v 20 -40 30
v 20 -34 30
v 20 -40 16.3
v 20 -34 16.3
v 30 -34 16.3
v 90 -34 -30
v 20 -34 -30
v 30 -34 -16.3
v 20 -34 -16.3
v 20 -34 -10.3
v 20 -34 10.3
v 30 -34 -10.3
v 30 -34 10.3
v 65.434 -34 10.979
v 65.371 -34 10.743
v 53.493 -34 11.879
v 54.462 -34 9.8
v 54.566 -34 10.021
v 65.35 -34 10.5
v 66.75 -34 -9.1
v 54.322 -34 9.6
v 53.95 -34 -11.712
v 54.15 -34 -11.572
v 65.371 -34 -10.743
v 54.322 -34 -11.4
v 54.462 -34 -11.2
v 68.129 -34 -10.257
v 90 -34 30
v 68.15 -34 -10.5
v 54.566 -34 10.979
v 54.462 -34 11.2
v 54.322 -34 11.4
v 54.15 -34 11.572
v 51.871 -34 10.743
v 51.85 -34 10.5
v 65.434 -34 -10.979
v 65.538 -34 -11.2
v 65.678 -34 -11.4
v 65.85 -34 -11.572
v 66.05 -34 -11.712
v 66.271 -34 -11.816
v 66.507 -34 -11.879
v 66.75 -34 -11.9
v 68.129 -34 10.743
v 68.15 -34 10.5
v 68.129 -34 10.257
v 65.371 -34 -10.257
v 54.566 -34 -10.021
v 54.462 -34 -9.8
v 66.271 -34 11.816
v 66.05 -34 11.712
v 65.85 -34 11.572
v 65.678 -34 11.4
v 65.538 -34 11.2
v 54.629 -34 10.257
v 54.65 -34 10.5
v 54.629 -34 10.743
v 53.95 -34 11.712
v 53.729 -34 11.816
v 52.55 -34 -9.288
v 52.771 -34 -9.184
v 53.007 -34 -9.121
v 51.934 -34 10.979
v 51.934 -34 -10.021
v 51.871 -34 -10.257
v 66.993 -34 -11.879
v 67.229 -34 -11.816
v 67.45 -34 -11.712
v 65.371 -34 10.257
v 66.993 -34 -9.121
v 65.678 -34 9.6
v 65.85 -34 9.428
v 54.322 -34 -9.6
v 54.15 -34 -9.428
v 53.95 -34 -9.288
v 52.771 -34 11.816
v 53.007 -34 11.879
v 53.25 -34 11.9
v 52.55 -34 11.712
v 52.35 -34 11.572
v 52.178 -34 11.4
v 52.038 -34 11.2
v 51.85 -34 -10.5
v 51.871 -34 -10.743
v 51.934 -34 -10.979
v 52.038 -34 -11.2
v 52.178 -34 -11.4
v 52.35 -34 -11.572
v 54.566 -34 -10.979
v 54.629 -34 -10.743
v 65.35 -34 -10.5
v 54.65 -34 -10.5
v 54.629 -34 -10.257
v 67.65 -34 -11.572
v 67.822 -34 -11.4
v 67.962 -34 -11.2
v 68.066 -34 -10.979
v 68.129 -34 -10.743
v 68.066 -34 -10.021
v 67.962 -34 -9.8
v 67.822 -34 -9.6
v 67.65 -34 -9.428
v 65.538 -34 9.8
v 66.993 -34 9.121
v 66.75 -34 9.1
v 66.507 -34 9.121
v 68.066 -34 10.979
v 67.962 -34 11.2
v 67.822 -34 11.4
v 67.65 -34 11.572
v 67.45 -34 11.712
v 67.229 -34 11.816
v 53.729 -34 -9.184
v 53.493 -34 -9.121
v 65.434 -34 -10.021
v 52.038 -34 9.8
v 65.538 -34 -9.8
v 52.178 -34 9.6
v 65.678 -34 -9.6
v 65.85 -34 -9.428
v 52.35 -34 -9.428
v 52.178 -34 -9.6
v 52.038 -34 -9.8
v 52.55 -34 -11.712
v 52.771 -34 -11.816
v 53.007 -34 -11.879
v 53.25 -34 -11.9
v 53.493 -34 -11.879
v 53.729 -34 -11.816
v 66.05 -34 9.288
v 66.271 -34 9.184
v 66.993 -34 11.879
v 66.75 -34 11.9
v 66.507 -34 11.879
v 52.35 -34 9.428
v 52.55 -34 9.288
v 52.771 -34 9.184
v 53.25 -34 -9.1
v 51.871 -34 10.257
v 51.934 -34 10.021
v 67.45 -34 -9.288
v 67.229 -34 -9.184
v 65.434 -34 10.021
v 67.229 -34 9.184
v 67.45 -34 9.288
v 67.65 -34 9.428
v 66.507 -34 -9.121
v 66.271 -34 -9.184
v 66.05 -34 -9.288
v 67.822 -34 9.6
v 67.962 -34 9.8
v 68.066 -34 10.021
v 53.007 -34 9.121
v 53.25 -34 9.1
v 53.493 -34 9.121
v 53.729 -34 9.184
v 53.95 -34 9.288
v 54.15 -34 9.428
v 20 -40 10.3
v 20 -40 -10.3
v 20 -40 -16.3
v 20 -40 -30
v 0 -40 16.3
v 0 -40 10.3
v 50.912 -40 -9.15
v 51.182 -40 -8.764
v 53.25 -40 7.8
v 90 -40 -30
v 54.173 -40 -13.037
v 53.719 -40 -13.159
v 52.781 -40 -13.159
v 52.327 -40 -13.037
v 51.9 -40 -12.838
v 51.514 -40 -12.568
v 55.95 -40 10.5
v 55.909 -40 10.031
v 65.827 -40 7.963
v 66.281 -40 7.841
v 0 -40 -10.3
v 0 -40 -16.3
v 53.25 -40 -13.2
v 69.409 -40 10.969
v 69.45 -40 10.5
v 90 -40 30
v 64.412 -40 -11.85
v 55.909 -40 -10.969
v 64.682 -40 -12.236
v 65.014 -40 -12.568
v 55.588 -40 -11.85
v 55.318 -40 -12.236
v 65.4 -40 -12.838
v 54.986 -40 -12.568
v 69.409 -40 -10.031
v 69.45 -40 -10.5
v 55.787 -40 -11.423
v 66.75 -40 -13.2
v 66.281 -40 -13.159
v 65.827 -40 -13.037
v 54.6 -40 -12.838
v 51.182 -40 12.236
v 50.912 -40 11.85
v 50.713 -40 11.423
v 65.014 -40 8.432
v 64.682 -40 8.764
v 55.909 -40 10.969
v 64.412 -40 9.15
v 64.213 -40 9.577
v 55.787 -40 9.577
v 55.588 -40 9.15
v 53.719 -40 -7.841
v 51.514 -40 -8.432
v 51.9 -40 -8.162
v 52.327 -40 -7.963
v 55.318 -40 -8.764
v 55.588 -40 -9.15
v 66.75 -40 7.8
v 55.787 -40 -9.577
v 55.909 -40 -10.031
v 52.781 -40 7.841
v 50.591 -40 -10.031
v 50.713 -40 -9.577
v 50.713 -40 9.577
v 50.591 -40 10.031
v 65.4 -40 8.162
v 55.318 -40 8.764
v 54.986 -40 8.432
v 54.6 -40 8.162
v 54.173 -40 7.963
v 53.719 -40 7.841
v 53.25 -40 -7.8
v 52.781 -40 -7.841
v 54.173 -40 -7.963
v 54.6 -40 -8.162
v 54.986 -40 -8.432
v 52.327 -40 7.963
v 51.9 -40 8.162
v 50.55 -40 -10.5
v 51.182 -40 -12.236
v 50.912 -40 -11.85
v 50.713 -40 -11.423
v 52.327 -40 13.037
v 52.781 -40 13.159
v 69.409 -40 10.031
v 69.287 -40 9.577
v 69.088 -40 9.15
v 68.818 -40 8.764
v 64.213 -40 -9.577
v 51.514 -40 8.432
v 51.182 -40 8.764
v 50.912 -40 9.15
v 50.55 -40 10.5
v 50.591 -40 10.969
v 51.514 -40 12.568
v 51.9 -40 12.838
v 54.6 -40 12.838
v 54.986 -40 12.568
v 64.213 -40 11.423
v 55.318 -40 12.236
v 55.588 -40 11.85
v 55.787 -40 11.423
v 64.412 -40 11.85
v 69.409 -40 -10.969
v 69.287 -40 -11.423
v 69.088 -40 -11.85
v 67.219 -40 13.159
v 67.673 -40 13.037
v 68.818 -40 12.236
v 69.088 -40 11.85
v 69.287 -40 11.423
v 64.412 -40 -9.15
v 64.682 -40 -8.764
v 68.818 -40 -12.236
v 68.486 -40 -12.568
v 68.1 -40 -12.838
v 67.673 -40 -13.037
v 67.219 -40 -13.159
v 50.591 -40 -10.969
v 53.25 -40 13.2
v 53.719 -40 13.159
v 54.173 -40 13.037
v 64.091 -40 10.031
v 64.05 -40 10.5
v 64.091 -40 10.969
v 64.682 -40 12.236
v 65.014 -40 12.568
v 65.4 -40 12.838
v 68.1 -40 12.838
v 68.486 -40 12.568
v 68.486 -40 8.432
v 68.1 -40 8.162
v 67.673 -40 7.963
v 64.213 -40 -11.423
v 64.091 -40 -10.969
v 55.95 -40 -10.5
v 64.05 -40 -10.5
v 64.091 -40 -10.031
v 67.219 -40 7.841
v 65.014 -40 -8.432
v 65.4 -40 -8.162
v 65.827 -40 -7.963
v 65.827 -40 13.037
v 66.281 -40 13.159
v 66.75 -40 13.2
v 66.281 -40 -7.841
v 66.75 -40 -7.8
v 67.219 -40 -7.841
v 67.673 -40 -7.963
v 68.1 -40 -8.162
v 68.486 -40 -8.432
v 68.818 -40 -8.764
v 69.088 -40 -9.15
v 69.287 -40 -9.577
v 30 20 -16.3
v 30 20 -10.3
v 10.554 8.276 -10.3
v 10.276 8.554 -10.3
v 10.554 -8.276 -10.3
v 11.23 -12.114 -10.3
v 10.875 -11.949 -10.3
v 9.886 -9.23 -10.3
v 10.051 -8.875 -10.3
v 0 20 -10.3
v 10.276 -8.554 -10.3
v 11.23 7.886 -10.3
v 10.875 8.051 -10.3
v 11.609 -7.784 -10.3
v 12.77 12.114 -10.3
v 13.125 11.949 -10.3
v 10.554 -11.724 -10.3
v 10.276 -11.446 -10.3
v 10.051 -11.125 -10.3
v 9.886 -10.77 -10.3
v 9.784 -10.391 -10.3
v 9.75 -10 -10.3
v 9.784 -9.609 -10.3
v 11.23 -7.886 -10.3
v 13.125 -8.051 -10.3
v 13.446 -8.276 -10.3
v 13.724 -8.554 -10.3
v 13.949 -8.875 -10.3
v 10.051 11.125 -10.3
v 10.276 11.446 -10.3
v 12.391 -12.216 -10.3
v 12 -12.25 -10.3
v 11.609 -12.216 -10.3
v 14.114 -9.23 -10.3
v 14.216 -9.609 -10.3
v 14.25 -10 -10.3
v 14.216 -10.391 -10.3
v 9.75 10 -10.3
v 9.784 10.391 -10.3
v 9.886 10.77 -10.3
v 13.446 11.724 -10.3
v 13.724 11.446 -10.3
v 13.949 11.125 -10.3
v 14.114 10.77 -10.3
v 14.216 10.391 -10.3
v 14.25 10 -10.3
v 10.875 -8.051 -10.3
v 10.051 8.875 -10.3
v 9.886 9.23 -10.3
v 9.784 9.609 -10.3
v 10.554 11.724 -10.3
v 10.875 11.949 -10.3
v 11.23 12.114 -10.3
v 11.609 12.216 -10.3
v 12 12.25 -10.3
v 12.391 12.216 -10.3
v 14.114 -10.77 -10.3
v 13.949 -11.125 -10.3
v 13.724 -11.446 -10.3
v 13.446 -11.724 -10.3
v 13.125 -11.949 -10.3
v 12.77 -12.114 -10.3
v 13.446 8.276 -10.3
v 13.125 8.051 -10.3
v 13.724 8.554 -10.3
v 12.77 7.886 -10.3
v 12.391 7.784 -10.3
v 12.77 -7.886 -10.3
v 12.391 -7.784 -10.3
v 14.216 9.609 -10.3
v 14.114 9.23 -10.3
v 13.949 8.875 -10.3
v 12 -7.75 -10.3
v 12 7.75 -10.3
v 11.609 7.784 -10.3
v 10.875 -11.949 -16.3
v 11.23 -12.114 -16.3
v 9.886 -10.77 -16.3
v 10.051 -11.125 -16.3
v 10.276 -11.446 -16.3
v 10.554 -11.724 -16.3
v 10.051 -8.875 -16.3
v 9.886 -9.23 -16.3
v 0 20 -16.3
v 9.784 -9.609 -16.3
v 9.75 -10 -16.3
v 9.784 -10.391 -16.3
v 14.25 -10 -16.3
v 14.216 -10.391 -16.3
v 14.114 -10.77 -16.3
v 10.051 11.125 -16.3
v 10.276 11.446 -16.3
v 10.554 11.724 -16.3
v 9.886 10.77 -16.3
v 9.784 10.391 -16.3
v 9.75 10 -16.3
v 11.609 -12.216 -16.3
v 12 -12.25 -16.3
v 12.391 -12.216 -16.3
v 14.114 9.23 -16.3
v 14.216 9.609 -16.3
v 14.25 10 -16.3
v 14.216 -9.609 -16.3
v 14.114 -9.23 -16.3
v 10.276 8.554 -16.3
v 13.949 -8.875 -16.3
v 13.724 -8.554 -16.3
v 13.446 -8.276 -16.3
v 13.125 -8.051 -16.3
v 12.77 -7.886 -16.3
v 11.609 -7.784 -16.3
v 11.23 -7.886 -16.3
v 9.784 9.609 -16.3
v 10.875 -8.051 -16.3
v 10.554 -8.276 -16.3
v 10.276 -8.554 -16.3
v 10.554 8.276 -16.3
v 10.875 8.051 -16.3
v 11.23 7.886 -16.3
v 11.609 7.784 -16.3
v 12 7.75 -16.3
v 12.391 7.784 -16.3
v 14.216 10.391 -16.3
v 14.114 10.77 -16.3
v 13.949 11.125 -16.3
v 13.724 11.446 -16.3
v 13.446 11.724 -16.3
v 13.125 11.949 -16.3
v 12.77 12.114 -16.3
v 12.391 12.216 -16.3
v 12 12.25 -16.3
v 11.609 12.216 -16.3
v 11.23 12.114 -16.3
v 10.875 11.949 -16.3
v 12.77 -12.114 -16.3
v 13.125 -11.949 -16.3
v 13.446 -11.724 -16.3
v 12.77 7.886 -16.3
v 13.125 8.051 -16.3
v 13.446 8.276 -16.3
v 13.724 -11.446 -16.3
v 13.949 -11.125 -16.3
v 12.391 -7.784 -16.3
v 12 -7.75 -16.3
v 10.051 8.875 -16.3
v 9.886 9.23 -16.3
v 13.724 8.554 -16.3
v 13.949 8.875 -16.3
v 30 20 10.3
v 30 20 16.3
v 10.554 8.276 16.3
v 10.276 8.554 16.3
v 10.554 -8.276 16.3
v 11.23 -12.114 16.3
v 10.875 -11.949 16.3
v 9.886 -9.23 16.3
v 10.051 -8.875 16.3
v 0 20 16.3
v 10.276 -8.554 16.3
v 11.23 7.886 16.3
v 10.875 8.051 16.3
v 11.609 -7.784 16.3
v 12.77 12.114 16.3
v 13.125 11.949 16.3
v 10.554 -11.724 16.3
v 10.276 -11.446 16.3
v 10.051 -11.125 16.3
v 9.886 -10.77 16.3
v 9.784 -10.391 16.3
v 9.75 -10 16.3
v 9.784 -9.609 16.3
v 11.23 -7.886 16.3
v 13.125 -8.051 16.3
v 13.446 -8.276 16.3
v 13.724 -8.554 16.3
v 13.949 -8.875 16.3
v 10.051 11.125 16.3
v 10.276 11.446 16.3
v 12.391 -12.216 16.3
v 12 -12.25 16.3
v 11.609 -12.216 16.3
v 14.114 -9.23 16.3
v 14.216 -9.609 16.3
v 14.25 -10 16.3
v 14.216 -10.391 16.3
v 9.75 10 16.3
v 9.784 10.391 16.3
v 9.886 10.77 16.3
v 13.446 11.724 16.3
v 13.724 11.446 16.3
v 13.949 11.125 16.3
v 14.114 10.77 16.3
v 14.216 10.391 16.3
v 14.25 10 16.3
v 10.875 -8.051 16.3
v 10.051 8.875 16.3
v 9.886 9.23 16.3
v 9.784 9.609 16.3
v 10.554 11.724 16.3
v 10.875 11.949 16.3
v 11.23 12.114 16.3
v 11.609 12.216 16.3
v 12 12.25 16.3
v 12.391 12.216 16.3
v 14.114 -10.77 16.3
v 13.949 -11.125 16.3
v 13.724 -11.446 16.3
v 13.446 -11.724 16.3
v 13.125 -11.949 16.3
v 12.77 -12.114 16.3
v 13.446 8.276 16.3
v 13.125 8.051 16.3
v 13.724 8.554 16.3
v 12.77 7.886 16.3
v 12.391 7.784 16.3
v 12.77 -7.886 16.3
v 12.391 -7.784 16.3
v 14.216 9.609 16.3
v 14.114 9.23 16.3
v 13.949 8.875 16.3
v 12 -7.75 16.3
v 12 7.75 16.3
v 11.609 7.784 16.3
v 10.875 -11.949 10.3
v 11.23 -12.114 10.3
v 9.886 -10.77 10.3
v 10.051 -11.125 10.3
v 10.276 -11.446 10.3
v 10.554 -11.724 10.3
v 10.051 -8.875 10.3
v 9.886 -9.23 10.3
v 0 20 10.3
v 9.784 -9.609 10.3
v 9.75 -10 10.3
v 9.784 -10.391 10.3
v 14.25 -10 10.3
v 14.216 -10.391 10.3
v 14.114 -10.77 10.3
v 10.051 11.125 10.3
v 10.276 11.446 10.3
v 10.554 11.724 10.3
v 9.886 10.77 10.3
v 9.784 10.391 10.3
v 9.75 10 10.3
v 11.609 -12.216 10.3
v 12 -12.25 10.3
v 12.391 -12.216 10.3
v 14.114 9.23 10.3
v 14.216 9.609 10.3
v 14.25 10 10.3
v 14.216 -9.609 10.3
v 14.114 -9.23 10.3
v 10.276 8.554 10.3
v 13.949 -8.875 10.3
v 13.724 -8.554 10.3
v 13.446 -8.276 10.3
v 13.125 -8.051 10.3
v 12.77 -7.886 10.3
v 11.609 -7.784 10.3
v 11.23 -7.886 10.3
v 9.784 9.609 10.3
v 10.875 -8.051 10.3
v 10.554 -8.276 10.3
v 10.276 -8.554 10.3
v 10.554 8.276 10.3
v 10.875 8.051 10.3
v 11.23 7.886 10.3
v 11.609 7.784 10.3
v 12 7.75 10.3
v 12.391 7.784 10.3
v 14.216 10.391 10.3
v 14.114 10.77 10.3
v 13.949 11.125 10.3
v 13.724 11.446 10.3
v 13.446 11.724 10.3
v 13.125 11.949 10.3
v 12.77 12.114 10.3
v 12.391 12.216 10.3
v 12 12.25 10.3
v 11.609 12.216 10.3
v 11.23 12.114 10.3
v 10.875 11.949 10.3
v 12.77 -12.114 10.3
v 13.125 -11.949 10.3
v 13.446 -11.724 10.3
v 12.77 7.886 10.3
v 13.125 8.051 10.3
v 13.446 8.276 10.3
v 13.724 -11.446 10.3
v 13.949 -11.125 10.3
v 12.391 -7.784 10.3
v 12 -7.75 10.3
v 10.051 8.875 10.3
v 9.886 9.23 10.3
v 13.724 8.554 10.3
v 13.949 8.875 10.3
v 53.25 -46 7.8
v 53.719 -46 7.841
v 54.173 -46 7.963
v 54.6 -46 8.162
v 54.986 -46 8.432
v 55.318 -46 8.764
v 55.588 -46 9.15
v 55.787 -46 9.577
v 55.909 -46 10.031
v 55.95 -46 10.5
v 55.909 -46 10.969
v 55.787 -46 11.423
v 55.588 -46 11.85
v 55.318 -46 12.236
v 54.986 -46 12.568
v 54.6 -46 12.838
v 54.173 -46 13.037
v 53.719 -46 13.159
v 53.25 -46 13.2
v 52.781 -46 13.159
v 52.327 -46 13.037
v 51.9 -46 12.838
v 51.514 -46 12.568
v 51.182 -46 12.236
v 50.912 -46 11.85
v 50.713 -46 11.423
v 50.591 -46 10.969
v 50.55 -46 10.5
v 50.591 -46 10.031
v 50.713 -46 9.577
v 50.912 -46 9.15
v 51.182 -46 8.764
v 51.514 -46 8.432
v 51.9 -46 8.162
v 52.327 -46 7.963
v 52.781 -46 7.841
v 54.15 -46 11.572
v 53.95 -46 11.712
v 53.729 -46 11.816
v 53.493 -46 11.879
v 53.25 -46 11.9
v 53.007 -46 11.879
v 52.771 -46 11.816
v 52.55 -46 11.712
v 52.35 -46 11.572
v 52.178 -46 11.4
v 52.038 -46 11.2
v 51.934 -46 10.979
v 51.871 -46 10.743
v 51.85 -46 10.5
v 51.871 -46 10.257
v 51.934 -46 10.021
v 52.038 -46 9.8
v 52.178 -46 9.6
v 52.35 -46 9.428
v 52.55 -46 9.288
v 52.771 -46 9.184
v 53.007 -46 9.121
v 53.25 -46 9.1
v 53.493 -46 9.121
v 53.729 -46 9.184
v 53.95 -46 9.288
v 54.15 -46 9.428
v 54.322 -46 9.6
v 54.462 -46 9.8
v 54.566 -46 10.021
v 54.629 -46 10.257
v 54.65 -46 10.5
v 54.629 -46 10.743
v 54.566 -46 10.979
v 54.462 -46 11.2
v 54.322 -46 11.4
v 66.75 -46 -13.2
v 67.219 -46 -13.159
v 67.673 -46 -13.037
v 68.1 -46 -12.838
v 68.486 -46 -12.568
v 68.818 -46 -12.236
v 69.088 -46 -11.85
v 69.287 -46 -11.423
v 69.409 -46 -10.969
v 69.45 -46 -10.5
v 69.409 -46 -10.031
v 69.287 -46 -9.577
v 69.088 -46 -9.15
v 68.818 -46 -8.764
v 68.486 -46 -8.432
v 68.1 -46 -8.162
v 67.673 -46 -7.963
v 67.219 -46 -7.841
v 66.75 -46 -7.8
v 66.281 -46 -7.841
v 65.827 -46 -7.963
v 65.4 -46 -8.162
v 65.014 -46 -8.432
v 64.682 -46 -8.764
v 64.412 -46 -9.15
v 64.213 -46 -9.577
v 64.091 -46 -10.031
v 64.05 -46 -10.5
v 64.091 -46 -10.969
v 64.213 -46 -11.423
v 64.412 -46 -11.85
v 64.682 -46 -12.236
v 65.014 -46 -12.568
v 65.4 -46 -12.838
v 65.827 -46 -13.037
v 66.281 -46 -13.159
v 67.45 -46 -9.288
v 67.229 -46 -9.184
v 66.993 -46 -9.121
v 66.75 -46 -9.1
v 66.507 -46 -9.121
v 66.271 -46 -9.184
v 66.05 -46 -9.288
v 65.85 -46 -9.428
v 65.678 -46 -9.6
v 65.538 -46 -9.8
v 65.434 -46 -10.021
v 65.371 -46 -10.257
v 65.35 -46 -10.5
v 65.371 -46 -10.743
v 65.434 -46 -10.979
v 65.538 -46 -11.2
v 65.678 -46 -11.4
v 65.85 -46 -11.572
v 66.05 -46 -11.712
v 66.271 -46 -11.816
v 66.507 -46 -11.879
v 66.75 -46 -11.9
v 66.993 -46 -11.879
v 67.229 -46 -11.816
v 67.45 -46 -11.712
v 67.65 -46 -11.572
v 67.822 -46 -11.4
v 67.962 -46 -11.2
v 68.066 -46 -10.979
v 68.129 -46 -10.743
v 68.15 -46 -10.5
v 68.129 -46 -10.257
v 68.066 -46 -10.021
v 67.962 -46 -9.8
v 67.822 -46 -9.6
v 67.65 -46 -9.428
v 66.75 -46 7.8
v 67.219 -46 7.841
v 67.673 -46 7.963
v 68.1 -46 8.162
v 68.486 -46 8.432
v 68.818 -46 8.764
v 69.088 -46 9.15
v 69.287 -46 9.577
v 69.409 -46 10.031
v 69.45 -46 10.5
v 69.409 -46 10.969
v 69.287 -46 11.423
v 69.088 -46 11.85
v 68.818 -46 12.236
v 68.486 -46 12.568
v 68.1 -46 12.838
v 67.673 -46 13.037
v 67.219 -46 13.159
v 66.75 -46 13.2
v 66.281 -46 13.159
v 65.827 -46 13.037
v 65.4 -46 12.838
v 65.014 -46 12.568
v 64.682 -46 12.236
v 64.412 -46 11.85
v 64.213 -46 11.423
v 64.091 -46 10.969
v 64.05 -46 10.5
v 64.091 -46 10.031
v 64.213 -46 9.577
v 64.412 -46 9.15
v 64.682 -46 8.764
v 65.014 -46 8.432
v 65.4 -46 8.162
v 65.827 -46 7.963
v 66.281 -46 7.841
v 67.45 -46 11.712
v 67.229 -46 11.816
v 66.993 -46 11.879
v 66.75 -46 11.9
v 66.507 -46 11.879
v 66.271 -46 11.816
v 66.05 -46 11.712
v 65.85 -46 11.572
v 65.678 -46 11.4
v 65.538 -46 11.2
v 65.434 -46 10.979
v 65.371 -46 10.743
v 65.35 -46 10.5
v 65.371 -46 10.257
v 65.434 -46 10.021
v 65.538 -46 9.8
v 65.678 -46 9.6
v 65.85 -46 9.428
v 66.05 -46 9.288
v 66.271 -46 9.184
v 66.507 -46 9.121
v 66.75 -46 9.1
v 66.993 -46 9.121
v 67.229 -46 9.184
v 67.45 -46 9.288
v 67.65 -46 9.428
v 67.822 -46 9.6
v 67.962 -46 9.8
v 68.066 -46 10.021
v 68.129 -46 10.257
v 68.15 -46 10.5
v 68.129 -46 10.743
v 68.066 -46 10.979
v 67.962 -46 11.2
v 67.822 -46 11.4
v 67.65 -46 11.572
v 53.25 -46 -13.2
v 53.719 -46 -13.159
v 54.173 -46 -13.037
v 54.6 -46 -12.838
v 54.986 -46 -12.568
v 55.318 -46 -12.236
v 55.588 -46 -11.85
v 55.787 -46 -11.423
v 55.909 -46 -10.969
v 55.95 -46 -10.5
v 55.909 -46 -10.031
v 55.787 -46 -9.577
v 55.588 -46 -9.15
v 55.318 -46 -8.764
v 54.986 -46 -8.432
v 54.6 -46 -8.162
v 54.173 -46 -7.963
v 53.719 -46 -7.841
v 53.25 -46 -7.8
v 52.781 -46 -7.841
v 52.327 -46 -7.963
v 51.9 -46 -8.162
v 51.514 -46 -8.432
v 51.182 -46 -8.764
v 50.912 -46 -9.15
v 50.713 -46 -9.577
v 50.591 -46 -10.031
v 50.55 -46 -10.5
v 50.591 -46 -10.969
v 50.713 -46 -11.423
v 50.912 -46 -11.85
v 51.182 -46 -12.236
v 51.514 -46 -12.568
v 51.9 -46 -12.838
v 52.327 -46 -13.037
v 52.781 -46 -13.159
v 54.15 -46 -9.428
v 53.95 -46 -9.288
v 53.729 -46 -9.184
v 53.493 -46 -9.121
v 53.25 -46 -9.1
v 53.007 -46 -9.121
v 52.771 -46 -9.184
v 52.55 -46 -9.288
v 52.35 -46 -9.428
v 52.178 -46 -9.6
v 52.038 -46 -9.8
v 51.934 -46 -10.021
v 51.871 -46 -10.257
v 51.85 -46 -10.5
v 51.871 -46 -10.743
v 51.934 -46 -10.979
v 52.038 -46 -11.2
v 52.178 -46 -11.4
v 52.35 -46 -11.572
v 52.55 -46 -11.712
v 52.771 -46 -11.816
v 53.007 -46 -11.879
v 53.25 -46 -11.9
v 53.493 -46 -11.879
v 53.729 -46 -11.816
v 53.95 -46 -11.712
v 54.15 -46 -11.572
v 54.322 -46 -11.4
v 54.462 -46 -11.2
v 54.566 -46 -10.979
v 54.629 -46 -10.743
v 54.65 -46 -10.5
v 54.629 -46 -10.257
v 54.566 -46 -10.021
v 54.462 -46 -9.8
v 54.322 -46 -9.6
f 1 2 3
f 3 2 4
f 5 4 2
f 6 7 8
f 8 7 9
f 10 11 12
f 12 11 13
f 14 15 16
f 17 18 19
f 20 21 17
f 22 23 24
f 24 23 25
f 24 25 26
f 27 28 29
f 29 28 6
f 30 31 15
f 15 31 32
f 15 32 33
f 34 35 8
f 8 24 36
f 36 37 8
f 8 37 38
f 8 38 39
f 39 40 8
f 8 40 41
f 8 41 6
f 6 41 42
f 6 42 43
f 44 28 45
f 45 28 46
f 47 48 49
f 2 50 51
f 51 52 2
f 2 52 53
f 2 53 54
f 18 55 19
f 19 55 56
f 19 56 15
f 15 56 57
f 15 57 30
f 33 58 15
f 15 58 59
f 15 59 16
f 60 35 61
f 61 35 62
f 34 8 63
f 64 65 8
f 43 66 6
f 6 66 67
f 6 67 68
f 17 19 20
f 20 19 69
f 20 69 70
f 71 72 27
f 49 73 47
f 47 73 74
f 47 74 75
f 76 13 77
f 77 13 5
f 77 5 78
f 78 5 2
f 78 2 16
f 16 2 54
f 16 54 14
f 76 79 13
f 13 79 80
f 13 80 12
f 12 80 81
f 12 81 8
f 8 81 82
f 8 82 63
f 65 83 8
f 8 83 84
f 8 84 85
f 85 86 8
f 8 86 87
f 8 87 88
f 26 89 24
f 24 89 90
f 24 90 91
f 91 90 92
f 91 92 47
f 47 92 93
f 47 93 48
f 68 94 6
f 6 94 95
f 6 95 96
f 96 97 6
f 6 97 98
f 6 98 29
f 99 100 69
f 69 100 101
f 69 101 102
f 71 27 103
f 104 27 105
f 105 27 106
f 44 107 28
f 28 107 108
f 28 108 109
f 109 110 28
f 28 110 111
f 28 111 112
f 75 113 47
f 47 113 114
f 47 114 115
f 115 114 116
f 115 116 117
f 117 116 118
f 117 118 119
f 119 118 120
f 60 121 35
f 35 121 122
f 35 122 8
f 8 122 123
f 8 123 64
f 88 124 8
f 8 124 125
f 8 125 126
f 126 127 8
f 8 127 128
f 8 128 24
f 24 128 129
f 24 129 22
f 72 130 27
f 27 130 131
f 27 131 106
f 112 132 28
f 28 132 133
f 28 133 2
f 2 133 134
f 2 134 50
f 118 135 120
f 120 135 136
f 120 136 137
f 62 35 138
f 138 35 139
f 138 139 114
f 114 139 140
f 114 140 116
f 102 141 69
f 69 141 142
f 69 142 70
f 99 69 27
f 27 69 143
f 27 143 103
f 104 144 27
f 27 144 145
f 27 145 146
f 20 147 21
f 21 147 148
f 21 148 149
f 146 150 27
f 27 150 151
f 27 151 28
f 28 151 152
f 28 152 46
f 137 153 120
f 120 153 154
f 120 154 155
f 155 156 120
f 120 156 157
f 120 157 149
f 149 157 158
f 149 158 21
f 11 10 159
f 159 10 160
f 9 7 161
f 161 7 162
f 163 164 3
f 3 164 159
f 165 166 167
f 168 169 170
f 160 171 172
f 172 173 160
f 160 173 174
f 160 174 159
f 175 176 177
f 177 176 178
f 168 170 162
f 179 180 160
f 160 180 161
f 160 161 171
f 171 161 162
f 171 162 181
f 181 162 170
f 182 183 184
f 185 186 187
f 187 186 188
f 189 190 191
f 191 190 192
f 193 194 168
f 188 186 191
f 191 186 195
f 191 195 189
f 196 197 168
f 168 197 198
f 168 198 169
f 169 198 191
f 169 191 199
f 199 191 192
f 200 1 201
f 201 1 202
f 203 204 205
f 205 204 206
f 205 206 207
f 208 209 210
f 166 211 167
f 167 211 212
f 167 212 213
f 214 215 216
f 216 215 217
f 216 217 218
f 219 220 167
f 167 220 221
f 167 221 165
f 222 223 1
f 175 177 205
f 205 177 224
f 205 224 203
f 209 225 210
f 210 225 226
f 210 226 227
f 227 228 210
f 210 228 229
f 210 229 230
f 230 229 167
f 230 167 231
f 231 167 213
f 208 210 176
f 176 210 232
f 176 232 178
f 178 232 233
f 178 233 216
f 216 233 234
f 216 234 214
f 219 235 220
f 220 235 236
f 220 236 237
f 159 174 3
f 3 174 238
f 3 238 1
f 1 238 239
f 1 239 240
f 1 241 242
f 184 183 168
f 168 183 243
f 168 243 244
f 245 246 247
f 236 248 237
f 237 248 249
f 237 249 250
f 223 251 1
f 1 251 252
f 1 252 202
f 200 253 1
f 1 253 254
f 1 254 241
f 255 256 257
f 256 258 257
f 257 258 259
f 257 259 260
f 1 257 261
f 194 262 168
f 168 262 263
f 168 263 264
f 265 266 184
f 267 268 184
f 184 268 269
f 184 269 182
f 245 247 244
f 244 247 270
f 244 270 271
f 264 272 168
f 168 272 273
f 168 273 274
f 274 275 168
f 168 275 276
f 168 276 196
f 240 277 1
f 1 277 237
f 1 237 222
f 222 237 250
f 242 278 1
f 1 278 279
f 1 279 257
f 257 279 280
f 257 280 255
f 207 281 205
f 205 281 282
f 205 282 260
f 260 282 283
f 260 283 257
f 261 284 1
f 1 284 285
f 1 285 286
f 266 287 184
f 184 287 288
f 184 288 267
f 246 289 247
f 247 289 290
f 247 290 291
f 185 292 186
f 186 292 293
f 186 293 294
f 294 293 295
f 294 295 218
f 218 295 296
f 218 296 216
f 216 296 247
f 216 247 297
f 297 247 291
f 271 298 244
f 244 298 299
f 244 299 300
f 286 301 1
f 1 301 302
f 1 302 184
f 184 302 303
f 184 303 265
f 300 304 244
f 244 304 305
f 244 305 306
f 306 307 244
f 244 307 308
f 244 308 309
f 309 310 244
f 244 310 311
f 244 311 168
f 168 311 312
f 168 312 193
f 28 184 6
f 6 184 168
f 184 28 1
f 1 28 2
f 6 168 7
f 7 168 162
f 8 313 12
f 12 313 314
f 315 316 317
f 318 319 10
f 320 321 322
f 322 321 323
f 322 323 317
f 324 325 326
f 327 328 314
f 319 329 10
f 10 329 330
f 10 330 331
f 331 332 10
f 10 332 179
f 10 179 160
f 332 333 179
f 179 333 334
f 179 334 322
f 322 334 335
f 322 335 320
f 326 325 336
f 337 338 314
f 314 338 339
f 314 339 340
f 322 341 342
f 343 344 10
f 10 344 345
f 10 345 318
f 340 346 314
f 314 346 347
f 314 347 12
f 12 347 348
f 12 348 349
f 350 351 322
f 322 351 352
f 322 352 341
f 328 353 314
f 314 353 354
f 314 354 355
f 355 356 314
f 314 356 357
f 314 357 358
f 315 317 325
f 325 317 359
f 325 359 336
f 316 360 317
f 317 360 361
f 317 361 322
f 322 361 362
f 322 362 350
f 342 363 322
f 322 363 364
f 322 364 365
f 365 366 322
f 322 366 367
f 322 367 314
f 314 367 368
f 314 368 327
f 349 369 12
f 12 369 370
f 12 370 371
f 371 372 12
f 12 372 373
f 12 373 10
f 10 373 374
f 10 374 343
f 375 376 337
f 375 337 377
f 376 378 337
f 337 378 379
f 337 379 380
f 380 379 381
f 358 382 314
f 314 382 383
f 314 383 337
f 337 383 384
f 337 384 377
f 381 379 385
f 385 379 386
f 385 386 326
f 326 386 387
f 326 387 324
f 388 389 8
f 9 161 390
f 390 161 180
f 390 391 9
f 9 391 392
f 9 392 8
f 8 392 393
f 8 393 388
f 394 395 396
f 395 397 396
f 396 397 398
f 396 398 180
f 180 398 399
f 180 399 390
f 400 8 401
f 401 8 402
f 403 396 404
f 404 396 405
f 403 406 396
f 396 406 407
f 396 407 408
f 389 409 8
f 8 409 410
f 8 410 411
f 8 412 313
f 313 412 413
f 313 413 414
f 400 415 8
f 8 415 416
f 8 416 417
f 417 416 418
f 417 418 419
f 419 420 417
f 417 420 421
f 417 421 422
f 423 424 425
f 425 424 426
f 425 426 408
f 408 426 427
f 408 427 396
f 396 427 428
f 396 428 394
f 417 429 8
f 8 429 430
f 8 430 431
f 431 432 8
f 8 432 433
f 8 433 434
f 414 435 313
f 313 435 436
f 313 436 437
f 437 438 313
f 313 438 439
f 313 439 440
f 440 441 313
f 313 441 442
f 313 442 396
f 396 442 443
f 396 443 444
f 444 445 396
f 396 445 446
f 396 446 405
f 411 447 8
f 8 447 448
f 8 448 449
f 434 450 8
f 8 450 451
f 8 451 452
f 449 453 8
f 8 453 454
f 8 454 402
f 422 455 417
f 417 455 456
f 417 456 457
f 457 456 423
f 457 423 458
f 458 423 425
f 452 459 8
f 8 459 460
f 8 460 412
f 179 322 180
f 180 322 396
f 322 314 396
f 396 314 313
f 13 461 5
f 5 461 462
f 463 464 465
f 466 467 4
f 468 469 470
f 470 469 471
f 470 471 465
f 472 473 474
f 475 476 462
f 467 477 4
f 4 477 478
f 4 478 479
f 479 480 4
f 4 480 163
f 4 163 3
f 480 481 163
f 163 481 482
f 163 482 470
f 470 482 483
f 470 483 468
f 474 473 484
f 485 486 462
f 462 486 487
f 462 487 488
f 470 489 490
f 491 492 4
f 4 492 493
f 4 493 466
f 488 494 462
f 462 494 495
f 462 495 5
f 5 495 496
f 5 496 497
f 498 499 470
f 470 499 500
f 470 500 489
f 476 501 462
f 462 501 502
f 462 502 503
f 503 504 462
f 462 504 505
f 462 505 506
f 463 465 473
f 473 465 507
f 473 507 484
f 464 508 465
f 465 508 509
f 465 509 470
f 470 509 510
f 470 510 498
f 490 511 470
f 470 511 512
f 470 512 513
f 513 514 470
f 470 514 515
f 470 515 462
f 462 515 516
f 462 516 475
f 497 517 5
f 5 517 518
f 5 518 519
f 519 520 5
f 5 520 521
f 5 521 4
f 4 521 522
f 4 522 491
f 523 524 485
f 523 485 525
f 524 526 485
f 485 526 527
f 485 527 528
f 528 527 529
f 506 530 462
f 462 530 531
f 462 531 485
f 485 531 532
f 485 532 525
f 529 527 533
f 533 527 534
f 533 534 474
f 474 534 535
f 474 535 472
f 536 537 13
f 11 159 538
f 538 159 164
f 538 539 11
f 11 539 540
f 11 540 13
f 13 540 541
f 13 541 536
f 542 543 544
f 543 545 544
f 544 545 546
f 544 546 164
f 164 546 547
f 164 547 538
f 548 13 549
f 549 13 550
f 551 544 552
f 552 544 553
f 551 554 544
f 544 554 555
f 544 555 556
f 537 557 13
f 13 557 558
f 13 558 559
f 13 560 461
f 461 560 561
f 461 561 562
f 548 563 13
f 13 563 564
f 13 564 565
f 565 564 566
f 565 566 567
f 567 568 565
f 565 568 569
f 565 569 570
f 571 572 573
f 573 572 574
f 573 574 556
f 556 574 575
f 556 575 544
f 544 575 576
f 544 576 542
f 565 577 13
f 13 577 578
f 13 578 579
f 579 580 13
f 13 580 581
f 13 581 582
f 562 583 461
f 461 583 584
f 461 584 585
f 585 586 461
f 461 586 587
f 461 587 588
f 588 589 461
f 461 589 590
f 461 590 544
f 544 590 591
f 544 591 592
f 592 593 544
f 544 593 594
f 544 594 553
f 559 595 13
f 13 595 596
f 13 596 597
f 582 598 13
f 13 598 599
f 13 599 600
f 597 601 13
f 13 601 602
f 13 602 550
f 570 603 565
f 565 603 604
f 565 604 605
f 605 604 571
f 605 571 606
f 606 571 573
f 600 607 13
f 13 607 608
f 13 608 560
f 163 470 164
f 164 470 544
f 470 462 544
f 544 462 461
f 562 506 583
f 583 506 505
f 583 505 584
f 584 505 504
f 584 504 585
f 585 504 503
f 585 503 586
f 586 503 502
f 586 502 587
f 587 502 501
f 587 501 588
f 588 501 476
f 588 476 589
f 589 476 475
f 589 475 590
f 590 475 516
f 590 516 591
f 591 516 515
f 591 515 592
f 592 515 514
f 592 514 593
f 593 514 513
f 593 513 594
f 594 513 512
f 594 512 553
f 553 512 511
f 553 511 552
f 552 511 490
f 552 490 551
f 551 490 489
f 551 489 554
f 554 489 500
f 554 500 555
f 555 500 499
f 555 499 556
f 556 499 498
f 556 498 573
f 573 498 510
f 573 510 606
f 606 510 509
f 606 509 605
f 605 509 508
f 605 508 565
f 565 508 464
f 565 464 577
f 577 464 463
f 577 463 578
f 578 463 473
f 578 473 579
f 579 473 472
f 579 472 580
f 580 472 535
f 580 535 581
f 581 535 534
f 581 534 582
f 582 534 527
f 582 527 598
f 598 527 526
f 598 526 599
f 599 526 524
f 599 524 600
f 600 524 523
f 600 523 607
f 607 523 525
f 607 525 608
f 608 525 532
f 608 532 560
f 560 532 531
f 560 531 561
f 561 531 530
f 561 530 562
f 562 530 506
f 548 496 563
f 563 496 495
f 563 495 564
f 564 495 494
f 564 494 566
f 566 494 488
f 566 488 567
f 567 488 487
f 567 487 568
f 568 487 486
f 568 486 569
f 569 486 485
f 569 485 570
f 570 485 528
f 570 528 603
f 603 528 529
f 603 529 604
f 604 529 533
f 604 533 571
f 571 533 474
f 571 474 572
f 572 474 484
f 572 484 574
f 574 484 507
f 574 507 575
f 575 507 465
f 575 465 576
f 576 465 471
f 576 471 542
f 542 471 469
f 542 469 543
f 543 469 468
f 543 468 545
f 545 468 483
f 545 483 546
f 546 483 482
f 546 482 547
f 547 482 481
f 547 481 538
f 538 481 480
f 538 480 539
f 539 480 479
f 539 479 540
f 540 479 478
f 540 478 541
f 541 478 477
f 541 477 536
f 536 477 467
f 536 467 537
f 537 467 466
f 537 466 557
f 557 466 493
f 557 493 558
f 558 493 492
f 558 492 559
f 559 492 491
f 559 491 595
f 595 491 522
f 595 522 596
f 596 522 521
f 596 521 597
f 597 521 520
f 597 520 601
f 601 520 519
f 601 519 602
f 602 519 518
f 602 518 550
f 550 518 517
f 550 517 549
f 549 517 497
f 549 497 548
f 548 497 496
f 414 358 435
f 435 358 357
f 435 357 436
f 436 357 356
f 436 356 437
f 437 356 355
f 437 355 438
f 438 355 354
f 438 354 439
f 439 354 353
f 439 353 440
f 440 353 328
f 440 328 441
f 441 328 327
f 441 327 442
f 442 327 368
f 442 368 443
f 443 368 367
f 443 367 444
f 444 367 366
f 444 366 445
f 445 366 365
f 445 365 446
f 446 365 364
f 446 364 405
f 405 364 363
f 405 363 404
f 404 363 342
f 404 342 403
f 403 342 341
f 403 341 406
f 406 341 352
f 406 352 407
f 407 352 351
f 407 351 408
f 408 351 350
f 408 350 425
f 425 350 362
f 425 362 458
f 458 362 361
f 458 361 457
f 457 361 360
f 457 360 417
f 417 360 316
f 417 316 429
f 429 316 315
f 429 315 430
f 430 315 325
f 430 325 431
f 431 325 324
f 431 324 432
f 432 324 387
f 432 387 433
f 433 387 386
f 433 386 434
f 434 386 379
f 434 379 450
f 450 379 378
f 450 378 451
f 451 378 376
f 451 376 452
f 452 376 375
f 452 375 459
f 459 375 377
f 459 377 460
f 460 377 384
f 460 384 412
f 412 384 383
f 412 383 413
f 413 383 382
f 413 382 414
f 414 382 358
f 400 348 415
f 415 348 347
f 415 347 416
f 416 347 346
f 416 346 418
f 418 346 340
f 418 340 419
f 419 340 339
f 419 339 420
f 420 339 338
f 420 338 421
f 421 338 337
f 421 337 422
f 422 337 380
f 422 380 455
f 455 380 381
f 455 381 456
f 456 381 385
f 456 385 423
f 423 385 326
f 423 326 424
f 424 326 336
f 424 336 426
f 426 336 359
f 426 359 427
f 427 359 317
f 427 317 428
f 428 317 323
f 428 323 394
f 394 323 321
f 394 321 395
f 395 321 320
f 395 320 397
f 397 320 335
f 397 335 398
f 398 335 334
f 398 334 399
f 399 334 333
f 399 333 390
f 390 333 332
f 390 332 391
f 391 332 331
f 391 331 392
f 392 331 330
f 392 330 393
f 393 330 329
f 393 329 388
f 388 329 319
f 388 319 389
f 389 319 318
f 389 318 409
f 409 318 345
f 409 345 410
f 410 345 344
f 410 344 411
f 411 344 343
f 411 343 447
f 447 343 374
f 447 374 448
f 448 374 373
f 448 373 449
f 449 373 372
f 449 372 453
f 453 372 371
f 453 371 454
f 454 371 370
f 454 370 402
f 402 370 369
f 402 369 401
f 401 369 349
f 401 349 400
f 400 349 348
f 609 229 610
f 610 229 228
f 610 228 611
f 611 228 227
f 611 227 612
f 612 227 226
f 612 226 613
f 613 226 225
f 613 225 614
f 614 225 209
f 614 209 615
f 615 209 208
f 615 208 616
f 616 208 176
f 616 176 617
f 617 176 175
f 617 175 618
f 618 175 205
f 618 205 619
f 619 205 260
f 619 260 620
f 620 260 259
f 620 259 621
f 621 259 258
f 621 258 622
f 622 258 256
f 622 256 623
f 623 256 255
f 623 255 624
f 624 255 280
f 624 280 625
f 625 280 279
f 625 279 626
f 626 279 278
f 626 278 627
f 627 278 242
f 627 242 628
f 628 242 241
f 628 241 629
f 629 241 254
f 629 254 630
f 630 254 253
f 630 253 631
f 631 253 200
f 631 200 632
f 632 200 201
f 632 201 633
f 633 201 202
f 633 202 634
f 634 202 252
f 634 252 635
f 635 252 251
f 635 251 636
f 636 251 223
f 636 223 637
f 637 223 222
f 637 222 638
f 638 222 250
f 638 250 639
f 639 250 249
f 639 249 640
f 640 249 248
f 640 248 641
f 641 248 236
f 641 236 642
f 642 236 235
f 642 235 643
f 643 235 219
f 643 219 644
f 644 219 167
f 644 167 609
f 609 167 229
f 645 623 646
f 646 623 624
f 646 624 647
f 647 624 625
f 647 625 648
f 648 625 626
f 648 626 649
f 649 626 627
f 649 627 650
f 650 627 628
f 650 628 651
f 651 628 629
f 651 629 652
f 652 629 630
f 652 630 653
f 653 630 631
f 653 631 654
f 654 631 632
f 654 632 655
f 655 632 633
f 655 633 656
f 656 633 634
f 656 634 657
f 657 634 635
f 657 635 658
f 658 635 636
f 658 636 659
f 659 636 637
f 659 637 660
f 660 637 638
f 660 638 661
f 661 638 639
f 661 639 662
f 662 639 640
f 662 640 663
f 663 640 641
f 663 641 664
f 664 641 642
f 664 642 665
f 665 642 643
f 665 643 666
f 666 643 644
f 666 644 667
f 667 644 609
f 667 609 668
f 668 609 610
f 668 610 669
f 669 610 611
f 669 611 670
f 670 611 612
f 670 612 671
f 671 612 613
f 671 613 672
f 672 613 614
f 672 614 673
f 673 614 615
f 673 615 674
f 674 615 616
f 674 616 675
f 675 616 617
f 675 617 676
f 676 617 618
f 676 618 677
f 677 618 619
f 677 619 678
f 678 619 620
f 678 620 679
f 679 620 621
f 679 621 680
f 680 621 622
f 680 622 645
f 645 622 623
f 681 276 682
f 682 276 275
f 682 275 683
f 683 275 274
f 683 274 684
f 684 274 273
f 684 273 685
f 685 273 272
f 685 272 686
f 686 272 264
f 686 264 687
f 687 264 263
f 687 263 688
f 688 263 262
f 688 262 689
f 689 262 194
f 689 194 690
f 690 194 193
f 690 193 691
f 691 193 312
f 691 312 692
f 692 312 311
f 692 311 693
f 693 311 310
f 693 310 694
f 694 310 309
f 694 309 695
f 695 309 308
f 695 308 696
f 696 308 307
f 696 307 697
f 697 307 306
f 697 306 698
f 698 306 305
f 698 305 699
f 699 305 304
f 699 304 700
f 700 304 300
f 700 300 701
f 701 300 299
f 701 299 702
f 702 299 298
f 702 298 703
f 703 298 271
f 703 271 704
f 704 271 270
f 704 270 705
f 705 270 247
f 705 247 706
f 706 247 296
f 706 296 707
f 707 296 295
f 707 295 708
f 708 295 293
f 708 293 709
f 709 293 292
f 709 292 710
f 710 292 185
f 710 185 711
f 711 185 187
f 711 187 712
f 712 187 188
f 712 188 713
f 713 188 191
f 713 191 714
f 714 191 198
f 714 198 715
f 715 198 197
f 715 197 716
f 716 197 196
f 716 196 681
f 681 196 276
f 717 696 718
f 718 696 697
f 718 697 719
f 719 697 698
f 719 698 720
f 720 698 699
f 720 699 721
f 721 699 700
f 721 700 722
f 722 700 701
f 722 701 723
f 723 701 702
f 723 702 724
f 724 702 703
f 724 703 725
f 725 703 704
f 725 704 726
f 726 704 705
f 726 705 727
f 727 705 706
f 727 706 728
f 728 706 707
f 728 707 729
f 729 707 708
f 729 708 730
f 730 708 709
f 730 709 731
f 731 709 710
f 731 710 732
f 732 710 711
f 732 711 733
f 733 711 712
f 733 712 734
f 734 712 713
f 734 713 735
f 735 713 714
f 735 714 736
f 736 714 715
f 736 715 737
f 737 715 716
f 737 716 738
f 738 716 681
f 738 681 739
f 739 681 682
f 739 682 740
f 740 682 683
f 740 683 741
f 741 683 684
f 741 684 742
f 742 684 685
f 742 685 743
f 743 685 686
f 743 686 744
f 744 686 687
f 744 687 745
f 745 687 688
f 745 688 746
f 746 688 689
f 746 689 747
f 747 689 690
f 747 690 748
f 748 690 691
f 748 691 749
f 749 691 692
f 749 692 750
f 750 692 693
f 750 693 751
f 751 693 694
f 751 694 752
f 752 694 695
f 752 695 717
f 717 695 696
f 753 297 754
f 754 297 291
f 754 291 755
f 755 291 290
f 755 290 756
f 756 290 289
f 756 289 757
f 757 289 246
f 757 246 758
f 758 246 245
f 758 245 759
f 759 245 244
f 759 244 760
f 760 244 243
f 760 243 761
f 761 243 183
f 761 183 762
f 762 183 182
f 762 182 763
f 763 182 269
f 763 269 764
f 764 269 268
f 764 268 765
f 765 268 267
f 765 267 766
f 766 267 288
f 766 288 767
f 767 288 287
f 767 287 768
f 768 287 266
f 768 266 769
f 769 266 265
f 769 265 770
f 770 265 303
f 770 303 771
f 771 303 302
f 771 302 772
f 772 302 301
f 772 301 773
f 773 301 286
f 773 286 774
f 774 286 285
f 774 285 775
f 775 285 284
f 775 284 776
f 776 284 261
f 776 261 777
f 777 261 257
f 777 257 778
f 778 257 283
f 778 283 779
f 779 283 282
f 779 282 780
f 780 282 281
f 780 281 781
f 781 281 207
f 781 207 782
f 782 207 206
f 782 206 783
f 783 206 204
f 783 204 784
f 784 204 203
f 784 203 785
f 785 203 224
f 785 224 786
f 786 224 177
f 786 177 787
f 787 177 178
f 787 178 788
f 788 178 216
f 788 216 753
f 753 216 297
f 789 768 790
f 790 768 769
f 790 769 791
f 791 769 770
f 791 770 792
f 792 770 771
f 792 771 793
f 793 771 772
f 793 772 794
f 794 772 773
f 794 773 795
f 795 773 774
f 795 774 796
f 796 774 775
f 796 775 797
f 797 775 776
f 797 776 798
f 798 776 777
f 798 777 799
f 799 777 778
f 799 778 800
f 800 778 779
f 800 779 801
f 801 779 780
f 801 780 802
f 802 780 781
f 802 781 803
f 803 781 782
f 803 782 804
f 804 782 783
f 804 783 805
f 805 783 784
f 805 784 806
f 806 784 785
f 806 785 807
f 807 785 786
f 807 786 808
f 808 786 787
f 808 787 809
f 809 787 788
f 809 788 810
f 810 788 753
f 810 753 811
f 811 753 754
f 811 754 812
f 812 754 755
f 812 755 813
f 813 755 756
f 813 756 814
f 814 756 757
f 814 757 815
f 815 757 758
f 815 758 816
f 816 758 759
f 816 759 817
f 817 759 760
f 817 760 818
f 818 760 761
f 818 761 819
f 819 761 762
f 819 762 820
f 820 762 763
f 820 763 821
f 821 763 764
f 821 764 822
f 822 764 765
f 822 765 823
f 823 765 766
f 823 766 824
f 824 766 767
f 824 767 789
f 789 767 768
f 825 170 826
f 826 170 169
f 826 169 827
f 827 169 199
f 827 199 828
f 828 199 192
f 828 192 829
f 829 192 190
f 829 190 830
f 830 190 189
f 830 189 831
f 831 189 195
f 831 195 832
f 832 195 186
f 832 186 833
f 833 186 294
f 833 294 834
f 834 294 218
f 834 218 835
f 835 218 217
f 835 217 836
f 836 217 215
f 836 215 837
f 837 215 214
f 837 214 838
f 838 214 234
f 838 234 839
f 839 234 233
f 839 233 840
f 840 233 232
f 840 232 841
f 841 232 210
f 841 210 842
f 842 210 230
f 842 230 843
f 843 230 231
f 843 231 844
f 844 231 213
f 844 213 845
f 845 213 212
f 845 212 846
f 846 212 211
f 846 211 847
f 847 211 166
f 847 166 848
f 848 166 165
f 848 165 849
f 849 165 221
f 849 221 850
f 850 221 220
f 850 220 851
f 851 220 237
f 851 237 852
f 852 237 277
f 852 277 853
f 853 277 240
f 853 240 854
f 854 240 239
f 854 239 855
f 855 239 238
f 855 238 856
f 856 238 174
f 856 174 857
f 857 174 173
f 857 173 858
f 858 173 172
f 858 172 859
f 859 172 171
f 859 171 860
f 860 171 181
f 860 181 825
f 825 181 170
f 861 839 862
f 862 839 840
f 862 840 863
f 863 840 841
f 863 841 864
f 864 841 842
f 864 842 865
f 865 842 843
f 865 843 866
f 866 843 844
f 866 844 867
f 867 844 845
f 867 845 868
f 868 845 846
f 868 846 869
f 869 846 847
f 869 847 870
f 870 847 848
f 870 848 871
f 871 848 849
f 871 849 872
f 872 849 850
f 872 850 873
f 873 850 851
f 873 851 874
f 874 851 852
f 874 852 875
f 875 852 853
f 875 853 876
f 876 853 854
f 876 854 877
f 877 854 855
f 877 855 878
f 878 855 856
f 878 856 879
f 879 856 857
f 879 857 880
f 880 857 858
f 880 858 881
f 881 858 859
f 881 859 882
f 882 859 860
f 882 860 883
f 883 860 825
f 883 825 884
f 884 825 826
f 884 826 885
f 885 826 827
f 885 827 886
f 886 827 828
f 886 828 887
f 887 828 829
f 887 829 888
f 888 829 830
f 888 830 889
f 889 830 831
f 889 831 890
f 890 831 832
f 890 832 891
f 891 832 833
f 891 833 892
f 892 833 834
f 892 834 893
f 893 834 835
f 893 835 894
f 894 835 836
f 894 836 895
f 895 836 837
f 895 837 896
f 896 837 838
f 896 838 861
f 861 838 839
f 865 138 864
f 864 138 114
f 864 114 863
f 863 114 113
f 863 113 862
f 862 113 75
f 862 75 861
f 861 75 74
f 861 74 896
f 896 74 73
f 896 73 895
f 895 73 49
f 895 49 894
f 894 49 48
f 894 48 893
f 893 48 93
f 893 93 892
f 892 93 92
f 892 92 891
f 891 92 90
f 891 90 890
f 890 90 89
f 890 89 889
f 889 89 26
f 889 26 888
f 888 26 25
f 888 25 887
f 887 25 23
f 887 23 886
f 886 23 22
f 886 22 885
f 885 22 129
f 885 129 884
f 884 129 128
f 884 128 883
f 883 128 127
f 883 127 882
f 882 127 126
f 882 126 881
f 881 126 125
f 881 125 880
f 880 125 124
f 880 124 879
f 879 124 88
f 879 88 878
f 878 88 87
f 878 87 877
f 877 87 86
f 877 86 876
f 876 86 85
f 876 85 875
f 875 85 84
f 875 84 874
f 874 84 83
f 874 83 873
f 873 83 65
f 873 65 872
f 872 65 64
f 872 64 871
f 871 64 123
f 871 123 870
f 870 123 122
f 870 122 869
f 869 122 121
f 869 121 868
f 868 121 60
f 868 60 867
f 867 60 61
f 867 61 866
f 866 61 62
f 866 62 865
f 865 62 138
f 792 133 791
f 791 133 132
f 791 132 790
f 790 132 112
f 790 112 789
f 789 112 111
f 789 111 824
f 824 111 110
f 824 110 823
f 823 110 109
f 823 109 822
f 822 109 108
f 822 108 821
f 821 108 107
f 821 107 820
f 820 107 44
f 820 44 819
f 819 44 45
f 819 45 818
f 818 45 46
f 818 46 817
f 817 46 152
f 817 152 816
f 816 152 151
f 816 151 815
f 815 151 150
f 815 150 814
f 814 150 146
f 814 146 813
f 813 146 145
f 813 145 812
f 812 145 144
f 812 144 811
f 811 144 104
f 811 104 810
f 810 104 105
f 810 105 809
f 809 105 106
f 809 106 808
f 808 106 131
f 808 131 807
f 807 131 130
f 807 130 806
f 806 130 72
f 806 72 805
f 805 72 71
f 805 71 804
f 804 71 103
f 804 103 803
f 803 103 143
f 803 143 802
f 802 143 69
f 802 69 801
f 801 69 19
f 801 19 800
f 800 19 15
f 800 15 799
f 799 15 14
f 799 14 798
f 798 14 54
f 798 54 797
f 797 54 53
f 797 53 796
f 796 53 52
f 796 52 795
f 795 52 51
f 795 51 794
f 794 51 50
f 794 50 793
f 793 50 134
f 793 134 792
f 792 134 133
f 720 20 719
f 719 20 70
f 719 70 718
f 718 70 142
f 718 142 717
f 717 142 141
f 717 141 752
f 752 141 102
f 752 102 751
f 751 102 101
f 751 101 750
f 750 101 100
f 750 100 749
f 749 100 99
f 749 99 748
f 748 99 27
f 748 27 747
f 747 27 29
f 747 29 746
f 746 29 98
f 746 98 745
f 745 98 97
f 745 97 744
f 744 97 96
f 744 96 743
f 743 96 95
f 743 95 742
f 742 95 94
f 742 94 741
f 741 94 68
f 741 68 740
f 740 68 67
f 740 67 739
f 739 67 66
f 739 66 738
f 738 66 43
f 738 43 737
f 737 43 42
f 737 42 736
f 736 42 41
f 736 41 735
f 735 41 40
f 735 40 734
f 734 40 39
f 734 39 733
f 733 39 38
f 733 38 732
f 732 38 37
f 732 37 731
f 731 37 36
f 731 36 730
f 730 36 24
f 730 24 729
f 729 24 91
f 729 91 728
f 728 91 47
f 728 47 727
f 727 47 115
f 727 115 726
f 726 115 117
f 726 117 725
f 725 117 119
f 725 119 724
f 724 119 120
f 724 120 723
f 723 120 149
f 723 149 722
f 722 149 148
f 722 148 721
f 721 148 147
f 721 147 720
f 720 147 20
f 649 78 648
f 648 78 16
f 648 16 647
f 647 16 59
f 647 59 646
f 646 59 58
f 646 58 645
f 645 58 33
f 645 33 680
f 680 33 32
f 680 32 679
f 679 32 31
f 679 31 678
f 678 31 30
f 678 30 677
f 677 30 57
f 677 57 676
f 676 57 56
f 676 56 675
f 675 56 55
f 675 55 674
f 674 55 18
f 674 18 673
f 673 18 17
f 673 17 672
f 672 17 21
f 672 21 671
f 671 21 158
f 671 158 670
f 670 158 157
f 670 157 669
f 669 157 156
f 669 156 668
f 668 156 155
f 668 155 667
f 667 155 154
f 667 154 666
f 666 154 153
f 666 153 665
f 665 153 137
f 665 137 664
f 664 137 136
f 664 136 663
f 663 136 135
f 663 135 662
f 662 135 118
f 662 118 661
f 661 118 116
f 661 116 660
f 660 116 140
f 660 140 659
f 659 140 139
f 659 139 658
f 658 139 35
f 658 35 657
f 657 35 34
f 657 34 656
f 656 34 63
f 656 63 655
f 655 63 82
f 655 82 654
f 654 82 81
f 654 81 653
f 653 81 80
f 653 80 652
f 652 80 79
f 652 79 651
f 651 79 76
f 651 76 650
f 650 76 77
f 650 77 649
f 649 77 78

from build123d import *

# Parameters (mm, degrees)
EXTRUDE_START             = -30
SKETCH_1_W                = 70
SKETCH_1_H                = 6
EXTRUDE_250_DEPTH         = 60
EXTRUDE_START_2           = -16.3
SKETCH_2_W                = 30
SKETCH_2_H                = 60
EXTRUDE_16_3_DEPTH        = 6
EXTRUDE_START_3           = 10.3
SKETCH_3_W                = 30
SKETCH_3_H                = 60
EXTRUDE_10_3_DEPTH        = 6
CUT_EXTRUDE_M4_DEPTH      = 103.95630141
CUT_EXTRUDE_M4_DEPTH_BACK = 103.95630141
SKETCH_4_R                = 2.25
F_6MM_START               = -46
SKETCH_5_R                = 2.7
F_6MM_DEPTH               = 6
F_21X13P5_DEPTH           = 106.432442825
F_21X13P5_DEPTH_BACK      = 106.432442825
SKETCH_6_R                = 1.4


with BuildPart() as part:
    # 草图1 → Extrude 250 (new body)
    with BuildSketch(Plane.XY.offset(EXTRUDE_START)):
        with Locations((55, -37)):
            Rectangle(SKETCH_1_W, SKETCH_1_H)
    extrude(amount=EXTRUDE_250_DEPTH)

    # 草图2 → 夹臂侧板-16.3 (add)
    with BuildSketch(Plane.XY.offset(EXTRUDE_START_2)):
        with Locations((15, -10)):
            Rectangle(SKETCH_2_W, SKETCH_2_H)
    extrude(amount=EXTRUDE_16_3_DEPTH)

    # 草图3 → 夹臂侧板10.3 (add)
    with BuildSketch(Plane.XY.offset(EXTRUDE_START_3)):
        with Locations((15, -10)):
            Rectangle(SKETCH_3_W, SKETCH_3_H)
    extrude(amount=EXTRUDE_10_3_DEPTH)

    # 草图4 → 夹臂M4通孔 (cut, two sides: drawn at the far end of the back side and taken through both)
    with BuildSketch(Plane.XY.offset(-CUT_EXTRUDE_M4_DEPTH_BACK)):
        with Locations(Location((12, -10, 0), (0, 0, 180))):
            Circle(SKETCH_4_R)
        with Locations(Location((12, 10, 0), (0, 0, 180))):
            Circle(SKETCH_4_R)
    extrude(amount=CUT_EXTRUDE_M4_DEPTH + CUT_EXTRUDE_M4_DEPTH_BACK, mode=Mode.SUBTRACT)

    # 草图5 → 相机6mm绝缘支柱 (add)
    with BuildSketch(Plane(origin=(0, 0, 0), x_dir=(1, 0, 0), z_dir=(0, 1, 0)).offset(F_6MM_START)):
        with Locations(Location((53.25, -10.5, 0), (0, 0, 270))):
            Circle(SKETCH_5_R)
        with Locations(Location((53.25, 10.5, 0), (0, 0, 270))):
            Circle(SKETCH_5_R)
        with Locations(Location((66.75, -10.5, 0), (0, 0, 270))):
            Circle(SKETCH_5_R)
        with Locations(Location((66.75, 10.5, 0), (0, 0, 270))):
            Circle(SKETCH_5_R)
    extrude(amount=F_6MM_DEPTH)

    # 草图6 → 21x13p5相机孔阵 (cut, two sides: drawn at the far end of the back side and taken through both)
    with BuildSketch(Plane(origin=(0, 0, 0), x_dir=(1, 0, 0), z_dir=(0, 1, 0)).offset(-F_21X13P5_DEPTH_BACK)):
        with Locations(Location((53.25, -10.5, 0), (0, 0, 270))):
            Circle(SKETCH_6_R)
        with Locations(Location((53.25, 10.5, 0), (0, 0, 270))):
            Circle(SKETCH_6_R)
        with Locations(Location((66.75, -10.5, 0), (0, 0, 270))):
            Circle(SKETCH_6_R)
        with Locations(Location((66.75, 10.5, 0), (0, 0, 270))):
            Circle(SKETCH_6_R)
    extrude(amount=F_21X13P5_DEPTH + F_21X13P5_DEPTH_BACK, mode=Mode.SUBTRACT)


solid = part.part
